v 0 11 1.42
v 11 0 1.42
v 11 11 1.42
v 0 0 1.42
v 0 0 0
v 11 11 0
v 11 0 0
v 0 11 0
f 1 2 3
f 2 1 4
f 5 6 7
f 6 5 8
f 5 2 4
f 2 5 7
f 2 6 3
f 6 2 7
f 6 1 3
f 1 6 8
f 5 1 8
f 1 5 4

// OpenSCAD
/* Warning, this is a very basic generator with a lot of approximation 
input data : [LFBGA, D8C, 11x11x1.42mm, 169, , D, C04-25535D]
generated by com.zoubworld.electronics.cad.model3d.Basic
Date : Sun Feb 15 10:50:49 CET 2026
*/

//body
color("black")
translate([0,0,0])
cube([11.0,11.0,1.42], center=false);
